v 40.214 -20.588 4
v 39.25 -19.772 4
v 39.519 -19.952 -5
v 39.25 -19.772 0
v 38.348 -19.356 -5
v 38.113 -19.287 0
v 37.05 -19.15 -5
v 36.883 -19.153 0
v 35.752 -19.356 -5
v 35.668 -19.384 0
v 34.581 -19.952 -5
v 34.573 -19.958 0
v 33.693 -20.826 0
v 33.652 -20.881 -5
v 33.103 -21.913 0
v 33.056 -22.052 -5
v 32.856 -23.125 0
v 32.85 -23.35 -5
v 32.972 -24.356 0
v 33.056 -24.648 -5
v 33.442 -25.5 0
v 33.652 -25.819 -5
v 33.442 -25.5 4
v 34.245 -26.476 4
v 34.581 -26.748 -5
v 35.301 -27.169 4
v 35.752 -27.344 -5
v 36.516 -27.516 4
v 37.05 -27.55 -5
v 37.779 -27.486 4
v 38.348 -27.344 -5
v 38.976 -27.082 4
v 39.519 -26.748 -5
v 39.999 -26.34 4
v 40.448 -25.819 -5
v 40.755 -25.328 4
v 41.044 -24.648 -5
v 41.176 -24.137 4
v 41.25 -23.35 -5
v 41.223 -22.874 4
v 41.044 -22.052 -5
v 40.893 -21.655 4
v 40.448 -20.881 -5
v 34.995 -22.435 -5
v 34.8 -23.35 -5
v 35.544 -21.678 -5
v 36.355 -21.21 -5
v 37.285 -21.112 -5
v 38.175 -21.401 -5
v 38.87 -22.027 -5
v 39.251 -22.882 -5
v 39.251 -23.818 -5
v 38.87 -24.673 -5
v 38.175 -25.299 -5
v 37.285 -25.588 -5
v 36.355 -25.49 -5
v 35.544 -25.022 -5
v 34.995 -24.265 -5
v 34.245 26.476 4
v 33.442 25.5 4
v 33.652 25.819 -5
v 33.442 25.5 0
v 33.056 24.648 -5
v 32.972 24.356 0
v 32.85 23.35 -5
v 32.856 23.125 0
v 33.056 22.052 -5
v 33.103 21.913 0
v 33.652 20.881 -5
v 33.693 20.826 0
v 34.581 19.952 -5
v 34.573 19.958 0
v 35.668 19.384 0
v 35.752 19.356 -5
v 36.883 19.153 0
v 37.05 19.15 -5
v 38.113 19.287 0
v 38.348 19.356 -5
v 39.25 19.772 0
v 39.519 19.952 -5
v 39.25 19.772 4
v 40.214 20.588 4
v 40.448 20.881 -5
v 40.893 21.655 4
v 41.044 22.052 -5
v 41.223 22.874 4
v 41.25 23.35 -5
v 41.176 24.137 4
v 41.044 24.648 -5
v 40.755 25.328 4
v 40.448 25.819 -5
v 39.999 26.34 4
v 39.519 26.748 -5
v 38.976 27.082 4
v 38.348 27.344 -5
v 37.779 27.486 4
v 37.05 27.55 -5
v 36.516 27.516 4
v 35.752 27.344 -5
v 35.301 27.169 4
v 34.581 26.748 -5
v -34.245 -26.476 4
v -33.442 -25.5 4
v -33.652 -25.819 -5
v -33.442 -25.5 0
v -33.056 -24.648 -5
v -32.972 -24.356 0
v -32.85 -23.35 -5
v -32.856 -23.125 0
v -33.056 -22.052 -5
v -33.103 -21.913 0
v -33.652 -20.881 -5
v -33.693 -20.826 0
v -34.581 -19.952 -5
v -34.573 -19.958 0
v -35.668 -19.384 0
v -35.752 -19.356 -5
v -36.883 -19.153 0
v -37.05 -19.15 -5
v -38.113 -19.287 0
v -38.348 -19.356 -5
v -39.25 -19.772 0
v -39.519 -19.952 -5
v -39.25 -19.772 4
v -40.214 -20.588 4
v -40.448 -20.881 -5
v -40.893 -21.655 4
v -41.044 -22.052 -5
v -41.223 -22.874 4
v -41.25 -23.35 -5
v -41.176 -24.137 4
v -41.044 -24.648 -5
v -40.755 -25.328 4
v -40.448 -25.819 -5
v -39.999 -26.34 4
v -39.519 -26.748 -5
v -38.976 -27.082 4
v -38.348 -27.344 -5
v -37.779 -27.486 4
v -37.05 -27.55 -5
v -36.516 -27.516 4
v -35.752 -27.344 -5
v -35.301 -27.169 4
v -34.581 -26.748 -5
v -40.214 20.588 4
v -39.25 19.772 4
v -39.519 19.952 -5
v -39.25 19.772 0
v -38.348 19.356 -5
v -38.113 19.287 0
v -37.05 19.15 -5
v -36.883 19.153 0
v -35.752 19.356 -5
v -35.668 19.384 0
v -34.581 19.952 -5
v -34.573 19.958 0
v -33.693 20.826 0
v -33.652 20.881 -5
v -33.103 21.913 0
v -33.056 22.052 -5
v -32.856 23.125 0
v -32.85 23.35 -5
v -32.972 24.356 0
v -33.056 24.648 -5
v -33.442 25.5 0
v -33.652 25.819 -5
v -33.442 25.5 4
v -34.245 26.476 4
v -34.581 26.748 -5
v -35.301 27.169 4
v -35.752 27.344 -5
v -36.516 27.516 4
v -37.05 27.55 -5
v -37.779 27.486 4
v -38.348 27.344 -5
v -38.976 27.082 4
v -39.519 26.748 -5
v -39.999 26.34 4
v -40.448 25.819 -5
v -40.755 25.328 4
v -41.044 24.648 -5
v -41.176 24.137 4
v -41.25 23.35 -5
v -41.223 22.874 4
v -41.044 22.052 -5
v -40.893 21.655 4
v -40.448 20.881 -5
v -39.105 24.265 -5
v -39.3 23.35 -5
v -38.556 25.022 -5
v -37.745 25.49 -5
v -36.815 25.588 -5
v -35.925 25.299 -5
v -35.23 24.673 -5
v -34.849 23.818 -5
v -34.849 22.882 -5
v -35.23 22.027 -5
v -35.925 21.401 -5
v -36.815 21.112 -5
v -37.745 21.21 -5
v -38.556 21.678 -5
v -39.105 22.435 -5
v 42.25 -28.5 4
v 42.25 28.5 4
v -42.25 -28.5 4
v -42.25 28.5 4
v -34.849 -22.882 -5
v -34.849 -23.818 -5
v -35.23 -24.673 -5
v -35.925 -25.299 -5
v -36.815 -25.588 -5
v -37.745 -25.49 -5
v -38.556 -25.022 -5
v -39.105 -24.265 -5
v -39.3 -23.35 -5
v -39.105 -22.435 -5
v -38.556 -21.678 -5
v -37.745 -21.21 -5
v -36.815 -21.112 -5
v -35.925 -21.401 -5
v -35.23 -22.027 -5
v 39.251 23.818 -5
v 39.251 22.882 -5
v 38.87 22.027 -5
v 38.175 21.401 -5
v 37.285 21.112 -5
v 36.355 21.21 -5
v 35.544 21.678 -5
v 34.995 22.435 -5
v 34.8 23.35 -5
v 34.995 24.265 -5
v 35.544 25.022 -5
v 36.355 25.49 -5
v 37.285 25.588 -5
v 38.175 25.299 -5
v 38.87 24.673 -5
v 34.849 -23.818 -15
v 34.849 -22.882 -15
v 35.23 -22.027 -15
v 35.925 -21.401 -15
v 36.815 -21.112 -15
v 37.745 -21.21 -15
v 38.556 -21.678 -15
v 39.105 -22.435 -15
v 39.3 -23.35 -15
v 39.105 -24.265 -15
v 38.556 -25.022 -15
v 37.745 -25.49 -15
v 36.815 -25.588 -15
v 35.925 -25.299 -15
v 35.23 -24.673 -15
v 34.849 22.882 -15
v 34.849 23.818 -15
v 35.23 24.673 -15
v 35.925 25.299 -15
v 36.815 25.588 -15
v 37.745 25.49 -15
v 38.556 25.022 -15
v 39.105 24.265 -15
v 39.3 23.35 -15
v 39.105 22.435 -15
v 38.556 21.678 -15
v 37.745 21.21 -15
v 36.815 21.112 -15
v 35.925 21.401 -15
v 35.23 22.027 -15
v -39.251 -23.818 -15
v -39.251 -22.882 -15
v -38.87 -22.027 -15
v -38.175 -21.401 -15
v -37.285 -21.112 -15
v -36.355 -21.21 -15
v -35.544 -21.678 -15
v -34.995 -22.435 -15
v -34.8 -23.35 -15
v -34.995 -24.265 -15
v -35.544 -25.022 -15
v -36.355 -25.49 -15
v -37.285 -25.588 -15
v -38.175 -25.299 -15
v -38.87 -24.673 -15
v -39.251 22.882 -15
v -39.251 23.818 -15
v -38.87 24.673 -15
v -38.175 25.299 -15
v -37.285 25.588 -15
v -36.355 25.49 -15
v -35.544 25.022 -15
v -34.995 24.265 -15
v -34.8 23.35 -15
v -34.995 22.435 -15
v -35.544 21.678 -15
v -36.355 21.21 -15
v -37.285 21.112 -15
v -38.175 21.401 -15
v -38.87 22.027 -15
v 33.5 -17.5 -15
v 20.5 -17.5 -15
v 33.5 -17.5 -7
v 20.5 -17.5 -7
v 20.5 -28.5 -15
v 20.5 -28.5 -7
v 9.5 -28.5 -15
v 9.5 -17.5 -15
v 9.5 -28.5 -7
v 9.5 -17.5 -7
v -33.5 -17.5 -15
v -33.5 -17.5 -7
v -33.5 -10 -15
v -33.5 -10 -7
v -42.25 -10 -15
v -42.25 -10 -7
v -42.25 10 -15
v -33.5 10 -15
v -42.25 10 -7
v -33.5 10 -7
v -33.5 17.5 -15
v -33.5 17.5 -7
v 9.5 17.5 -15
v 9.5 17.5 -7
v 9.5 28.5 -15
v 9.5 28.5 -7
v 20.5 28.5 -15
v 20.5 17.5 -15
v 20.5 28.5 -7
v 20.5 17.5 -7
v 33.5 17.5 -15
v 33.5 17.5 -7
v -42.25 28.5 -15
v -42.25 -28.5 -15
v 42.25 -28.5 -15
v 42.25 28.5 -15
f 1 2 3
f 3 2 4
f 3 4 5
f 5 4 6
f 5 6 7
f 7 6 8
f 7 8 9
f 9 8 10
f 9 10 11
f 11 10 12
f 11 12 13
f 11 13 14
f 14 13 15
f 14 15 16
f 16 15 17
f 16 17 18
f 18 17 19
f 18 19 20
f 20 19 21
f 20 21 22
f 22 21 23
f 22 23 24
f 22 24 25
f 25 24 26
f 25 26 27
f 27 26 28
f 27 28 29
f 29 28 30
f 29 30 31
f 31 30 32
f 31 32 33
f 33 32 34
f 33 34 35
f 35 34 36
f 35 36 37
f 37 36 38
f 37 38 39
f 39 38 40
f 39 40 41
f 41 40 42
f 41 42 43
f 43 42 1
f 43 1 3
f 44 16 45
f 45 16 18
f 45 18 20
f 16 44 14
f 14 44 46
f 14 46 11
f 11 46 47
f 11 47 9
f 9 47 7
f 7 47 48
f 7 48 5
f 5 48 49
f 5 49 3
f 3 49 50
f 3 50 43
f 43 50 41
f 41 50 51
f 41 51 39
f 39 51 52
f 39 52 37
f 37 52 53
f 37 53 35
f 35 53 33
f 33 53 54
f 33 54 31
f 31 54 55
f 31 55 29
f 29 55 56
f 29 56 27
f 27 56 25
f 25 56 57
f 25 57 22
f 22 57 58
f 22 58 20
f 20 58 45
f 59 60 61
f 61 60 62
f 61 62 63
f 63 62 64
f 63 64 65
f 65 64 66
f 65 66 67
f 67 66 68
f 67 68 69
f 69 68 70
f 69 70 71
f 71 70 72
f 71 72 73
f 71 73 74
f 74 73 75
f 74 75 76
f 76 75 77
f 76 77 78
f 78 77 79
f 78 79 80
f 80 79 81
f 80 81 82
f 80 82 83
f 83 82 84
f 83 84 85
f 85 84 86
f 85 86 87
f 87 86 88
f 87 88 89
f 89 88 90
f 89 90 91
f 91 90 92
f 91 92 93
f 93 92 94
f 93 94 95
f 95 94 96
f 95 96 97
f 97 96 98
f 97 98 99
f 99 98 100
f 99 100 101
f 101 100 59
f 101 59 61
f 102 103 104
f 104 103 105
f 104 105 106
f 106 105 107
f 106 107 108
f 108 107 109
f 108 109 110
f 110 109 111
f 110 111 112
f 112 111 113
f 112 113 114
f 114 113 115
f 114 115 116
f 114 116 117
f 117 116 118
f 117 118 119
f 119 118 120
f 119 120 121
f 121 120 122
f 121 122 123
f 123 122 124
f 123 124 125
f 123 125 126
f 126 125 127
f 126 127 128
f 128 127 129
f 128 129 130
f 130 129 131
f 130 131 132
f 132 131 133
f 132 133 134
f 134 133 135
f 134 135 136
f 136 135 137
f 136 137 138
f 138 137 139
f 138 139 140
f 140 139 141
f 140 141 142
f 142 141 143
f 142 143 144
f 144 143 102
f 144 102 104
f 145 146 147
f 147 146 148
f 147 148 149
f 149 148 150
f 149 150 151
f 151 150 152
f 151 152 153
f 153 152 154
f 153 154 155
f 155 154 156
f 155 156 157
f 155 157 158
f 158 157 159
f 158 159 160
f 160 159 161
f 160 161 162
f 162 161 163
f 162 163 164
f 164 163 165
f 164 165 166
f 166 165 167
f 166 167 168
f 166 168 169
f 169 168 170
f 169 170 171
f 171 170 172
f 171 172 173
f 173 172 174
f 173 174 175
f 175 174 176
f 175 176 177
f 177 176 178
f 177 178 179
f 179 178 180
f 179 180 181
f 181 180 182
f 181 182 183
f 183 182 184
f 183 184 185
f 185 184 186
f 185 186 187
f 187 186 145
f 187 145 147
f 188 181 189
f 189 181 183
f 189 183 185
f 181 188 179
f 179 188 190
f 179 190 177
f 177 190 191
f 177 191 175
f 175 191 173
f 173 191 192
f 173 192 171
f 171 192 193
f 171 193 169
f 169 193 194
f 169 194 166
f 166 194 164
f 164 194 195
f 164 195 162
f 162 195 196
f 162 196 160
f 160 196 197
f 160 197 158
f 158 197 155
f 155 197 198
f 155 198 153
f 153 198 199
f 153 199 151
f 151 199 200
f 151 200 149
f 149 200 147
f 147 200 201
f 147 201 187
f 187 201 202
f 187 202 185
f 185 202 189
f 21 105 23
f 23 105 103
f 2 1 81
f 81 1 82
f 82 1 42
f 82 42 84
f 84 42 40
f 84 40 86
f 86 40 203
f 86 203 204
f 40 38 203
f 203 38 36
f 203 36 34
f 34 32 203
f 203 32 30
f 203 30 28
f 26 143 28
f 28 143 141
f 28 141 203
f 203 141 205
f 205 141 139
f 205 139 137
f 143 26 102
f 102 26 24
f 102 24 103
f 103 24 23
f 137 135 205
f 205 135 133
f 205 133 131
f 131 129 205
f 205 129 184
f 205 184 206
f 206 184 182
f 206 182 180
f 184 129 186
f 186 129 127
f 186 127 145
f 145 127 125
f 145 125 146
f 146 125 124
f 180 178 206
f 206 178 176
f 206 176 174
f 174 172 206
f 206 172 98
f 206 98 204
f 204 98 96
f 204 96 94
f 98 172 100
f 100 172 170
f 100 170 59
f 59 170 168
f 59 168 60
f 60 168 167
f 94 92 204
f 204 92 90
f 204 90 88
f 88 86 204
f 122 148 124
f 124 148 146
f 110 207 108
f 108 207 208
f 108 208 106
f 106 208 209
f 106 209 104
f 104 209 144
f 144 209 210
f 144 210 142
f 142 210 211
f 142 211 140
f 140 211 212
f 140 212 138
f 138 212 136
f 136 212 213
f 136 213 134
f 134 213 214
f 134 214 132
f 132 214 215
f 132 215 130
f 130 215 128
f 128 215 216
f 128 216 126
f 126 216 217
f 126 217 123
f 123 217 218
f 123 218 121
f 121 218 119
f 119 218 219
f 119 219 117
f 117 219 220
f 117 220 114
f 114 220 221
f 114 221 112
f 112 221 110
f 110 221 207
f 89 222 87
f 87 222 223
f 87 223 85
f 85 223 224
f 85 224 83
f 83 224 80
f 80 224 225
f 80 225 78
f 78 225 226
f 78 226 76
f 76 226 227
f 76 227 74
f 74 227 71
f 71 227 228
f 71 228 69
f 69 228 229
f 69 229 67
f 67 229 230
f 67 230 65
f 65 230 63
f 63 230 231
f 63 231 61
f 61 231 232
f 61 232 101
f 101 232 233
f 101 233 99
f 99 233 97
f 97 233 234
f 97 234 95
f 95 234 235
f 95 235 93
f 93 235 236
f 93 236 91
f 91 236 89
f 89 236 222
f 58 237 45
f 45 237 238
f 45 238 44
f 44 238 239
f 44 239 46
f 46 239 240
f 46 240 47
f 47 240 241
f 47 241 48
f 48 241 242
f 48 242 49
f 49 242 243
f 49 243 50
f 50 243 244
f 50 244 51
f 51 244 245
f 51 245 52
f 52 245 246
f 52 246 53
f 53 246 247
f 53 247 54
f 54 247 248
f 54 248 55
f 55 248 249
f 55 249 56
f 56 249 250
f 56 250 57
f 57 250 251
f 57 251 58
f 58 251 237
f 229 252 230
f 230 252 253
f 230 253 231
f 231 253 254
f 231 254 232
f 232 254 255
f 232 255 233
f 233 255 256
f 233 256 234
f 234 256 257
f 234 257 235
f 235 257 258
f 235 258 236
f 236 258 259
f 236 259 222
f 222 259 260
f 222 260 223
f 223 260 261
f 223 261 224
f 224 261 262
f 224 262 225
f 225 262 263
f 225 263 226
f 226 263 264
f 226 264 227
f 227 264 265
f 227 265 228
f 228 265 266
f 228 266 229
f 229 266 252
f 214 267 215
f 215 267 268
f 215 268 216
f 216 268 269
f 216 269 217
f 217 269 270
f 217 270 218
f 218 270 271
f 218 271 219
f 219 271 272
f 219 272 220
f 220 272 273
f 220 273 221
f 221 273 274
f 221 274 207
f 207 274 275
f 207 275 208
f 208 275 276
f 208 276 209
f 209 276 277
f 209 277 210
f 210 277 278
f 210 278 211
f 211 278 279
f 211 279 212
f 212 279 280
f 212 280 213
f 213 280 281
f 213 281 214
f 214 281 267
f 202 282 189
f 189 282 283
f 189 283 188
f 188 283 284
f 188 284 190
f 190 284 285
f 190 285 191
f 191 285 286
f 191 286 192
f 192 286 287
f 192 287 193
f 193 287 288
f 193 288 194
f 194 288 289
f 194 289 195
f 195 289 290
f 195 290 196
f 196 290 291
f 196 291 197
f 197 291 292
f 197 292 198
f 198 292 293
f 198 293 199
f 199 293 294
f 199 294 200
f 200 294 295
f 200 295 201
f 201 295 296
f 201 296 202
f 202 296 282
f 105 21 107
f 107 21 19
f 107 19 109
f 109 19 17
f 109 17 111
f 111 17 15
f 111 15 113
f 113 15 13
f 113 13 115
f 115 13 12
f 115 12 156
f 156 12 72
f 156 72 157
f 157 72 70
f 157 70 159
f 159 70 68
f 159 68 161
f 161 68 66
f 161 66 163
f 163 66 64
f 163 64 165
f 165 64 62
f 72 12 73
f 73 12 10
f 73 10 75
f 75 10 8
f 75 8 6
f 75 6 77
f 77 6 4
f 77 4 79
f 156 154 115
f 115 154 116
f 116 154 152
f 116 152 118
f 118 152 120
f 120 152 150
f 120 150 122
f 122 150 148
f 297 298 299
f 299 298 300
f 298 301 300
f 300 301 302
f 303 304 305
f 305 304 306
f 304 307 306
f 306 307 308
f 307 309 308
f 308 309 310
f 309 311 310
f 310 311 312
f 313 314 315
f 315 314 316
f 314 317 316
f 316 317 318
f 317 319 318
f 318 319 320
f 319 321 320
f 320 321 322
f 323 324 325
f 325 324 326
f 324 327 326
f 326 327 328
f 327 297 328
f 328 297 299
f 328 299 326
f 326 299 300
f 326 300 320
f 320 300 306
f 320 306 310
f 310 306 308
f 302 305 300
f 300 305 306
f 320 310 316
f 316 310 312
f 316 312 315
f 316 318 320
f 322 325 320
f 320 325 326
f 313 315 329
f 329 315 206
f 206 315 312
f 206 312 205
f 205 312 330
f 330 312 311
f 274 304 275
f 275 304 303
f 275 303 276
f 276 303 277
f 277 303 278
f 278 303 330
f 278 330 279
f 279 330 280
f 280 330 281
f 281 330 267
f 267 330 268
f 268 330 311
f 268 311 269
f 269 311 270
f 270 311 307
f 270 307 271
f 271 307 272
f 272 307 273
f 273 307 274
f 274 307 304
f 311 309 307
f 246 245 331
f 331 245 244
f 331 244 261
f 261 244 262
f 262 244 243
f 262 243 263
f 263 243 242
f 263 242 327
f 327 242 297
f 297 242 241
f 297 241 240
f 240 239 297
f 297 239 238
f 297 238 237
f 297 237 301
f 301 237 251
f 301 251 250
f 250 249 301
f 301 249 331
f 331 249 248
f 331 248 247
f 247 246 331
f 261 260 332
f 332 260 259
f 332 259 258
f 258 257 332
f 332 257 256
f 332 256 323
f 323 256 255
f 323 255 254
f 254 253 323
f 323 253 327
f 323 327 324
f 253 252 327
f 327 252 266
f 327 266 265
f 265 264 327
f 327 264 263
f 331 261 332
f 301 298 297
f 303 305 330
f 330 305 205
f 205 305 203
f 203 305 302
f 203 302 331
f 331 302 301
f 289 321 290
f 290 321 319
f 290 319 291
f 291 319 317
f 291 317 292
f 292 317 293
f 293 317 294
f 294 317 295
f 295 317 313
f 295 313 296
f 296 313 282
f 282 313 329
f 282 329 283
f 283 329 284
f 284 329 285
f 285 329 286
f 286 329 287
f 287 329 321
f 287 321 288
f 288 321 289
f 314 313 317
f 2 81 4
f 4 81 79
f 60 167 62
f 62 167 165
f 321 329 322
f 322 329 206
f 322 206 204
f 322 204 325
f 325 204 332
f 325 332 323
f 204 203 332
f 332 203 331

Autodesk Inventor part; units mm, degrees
ref_plane "YZ Plane" through (0, 0, 0) normal (1, 0, 0) x (0, 1, 0)
ref_plane "XZ Plane" through (0, 0, 0) normal (0, 1, 0) x (-1, 0, 0)
ref_plane "XY Plane" through (0, 0, 0) normal (0, 0, 1) x (1, 0, 0)
sketch "Boceto1" plane through (0, 0, 0) normal (0, 0, 1) x (1, 0, 0)
  line L0 (-39.25, 25.5) -> (39.25, 25.5)
  line L1 (39.25, 25.5) -> (39.25, -25.5)
  line L2 (39.25, -25.5) -> (-39.25, -25.5)
  line L3 (-39.25, -25.5) -> (-39.25, 25.5)
  line L4 (-39.25, 25.5) -> (39.25, -25.5) construction
  line L5 (39.25, 25.5) -> (-39.25, -25.5) construction
  line L6 (42.25, 28.5) -> (-42.25, 28.5)
  line L7 (-42.25, 28.5) -> (-42.25, -28.5)
  line L8 (-42.25, -28.5) -> (42.25, -28.5)
  line L9 (42.25, -28.5) -> (42.25, 28.5)
  point P0 (0, 0)
  dimension "d0" = 51
  dimension "d1" = 78.5
  dimension "d2" = 3
extrude "Extrusión1" add sketch "Boceto1" along normal blind 4
sketch "Boceto2" plane through (0, 0, 0) normal (0, 0, -1) x (-1, 0, 0)
  line L0 (-42.25, 28.5) -> (42.25, 28.5) projected
  line L1 (42.25, -28.5) -> (-42.25, -28.5) projected
  line L2 (-42.25, 28.5) -> (42.25, 28.5)
  line L3 (42.25, 28.5) -> (42.25, -28.5)
  line L4 (42.25, -28.5) -> (-42.25, -28.5)
  line L5 (-42.25, -28.5) -> (-42.25, 28.5)
  point P0 (0, 0)
  point P1 (-42.25, -28.5)
extrude "Extrusión2" add sketch "Boceto2" along normal blind 15
sketch "Boceto3" plane through (0, 0, -15) normal (0, 0, -1) x (-1, 0, 0)
  line L0 (-33.5, 17.5) -> (33.5, 17.5)
  line L1 (33.5, 17.5) -> (33.5, -17.5)
  line L2 (33.5, -17.5) -> (-33.5, -17.5)
  line L3 (-33.5, -17.5) -> (-33.5, 17.5)
  line L4 (-33.5, 17.5) -> (33.5, -17.5) construction
  line L5 (33.5, 17.5) -> (-33.5, -17.5) construction
  line L6 (31.0225, -10) -> (35.9775, -10)
  line L7 (35.9775, -10) -> (35.9775, 10)
  line L8 (35.9775, 10) -> (31.0225, 10)
  line L9 (31.0225, 10) -> (31.0225, -10)
  line L10 (31.0225, -10) -> (35.9775, 10) construction
  line L11 (35.9775, -10) -> (31.0225, 10) construction
  line L12 (33.5, 10) -> (42.25, 10)
  line L13 (42.25, 28.5) -> (42.25, -28.5) projected
  line L14 (33.5, -10) -> (42.25, -10)
  line L15 (42.25, -10) -> (42.25, 10)
  line L16 (-20.5, 20.388) -> (-9.5, 20.388)
  line L17 (-9.5, 20.388) -> (-9.5, 14.612)
  line L18 (-9.5, 14.612) -> (-20.5, 14.612)
  line L19 (-20.5, 14.612) -> (-20.5, 20.388)
  line L20 (-20.5, 20.388) -> (-9.5, 14.612) construction
  line L21 (-9.5, 20.388) -> (-20.5, 14.612) construction
  line L22 (-42.25, 28.5) -> (42.25, 28.5) projected
  line L23 (-20.5, 17.5) -> (-9.5, 17.5)
  line L24 (-9.5, 17.5) -> (-9.5, 28.5)
  line L25 (-9.5, 28.5) -> (-20.5, 28.5)
  line L26 (-20.5, 28.5) -> (-20.5, 17.5)
  line L27 (-33.5, 0) -> (-37.4386, 0)
  line L28 (-20.5, -20.388) -> (-9.5, -20.388)
  line L29 (-9.5, -20.388) -> (-9.5, -14.612)
  line L30 (-9.5, -14.612) -> (-20.5, -14.612)
  line L31 (-20.5, -14.612) -> (-20.5, -20.388)
  line L32 (-20.5, -20.388) -> (-9.5, -14.612) construction
  line L33 (-9.5, -20.388) -> (-20.5, -14.612) construction
  line L34 (-20.5, -17.5) -> (-9.5, -17.5)
  line L35 (-9.5, -17.5) -> (-9.5, -28.5)
  line L36 (-9.5, -28.5) -> (-20.5, -28.5)
  line L37 (-20.5, -28.5) -> (-20.5, -17.5)
  point P0 (0, 0)
  point P1 (33.5, 0)
  point P2 (33.5, 10)
  point P3 (-15, 17.5)
  point P4 (-15, -17.5)
  point P5 (-20.5, -17.5)
  point P6 (-9.5, -17.5)
  point P7 (-20.5, 28.5)
  point P8 (-20.5, 17.5)
  point P9 (-9.5, 17.5)
  dimension "d7" = 67
  dimension "d8" = 35
  dimension "d9" = 20
  dimension "d33" = 11
  dimension "d34" = 13
  dimension "d38" = 0
extrude "Extrusión3" cut sketch "Boceto3" against normal blind 8 contours L0 L19 L18 L17 L1 L8 L9 L6 L2 L29 L30 L31 L3 | L19 L16 L17 L0 | L0 L17 L18 L19 | L26 L22 L24 L16 | L31 L30 L29 L2 | L2 L29 L28 L31 | L8 L7 L6 L1 | L1 L6 L9 L8 | L28 L35 L36 L37 | L12 L13 L14 L7
sketch "Boceto4" plane through (0, 0, 0) normal (0, 0, 1) x (1, 0, 0)
  line L0 (-42.05, -28.35) -> (-42.05, 28.35)
  line L1 (-42.05, 28.35) -> (42.05, 28.35)
  line L2 (42.05, 28.35) -> (42.05, -28.35)
  line L3 (42.05, -28.35) -> (-42.05, -28.35)
  line L4 (-42.05, -28.35) -> (42.05, 28.35) construction
  line L5 (-42.05, 28.35) -> (42.05, -28.35) construction
  line L6 (10.704, 28.35) -> (-32.296, 28.35)
  line L7 (42.05, 8.05) -> (42.05, 12.05)
  circle A0 centre (-37.05, -23.35) radius 2.25
  line L8 (-42.05, 12.05) -> (-42.05, -12.05)
  line L9 (-42.05, 0) -> (-48.6371, 0)
  line L10 (0, -28.35) -> (0, -35.954)
  circle A1 centre (-37.05, 23.35) radius 2.25
  circle A2 centre (37.05, -23.35) radius 2.25
  circle A3 centre (37.05, 23.35) radius 2.25
  point P0 (0, 0)
  point P1 (0, 0)
  dimension "d12" = 0
  dimension "d13" = 0
  dimension "d14" = 4.5
  dimension "d15" = 5
  dimension "d16" = 5
  dimension "d24" = 4.5
  dimension "d25" = 4.5
  dimension "d26" = 4.5
extrude "Extrusión4" cut sketch "Boceto4" against normal blind 15 contours A0 | A1 | A2 | A3
sketch "Boceto5" plane through (0, 0, 0) normal (0, 0, 1) x (1, 0, 0)
  circle A0 centre (-37.05, 23.35) radius 2.25 projected
  line L0 (-39.25, 25.5) -> (39.25, 25.5) projected
  arc A1 (39.25, 23.8217) -> (37.7133, 25.5) centre (37.05, 23.35) ccw projected
  circle A2 centre (37.05, 23.35) radius 2.5
  circle A3 centre (37.05, -23.35) radius 2.25 projected
  circle A4 centre (37.05, -23.35) radius 2.15
  line L1 (39.25, -25.5) -> (-39.25, -25.5) projected
  arc A5 (-36.3867, -25.5) -> (-39.25, -22.8783) centre (-37.05, -23.35) ccw projected
  circle A6 centre (-37.05, -23.35) radius 2.5
  circle A7 centre (-37.05, 23.35) radius 2.5
  circle A8 centre (37.05, -23.35) radius 2.5
  point P0 (0, 0)
  dimension "d28" = 5
  dimension "d29" = 4.5
  dimension "d30" = 5
  dimension "d31" = 5
  dimension "d32" = 5
extrude "Extrusión5" cut sketch "Boceto5" against normal blind 5 contours A2 L0 | L0 A2 | A4 | A6 L1 | L1 A6
sketch "Boceto6" plane through (-37.05, 23.35, -5) normal (0, 0, 1) x (1, 0, 0)
  circle A0 centre (0, 0) radius 4.2
  line L0 (37.05, 4.6715) -> (37.05, 10.9086)
  line L1 (-5.2, -13.35) -> (-5.2, -33.35) projected
  line L2 (-5.2, -23.35) -> (-13.3544, -23.35)
  circle A1 centre (74.1, 0) radius 4.2
  circle A2 centre (0, -46.7) radius 4.2
  circle A3 centre (74.1, -46.7) radius 4.2
  point P0 (37.05, -23.35)
  dimension "d21" = 8.4
extrude "Extrusión6" cut sketch "Boceto6" along normal blind 9
properties part number "bms_case"
